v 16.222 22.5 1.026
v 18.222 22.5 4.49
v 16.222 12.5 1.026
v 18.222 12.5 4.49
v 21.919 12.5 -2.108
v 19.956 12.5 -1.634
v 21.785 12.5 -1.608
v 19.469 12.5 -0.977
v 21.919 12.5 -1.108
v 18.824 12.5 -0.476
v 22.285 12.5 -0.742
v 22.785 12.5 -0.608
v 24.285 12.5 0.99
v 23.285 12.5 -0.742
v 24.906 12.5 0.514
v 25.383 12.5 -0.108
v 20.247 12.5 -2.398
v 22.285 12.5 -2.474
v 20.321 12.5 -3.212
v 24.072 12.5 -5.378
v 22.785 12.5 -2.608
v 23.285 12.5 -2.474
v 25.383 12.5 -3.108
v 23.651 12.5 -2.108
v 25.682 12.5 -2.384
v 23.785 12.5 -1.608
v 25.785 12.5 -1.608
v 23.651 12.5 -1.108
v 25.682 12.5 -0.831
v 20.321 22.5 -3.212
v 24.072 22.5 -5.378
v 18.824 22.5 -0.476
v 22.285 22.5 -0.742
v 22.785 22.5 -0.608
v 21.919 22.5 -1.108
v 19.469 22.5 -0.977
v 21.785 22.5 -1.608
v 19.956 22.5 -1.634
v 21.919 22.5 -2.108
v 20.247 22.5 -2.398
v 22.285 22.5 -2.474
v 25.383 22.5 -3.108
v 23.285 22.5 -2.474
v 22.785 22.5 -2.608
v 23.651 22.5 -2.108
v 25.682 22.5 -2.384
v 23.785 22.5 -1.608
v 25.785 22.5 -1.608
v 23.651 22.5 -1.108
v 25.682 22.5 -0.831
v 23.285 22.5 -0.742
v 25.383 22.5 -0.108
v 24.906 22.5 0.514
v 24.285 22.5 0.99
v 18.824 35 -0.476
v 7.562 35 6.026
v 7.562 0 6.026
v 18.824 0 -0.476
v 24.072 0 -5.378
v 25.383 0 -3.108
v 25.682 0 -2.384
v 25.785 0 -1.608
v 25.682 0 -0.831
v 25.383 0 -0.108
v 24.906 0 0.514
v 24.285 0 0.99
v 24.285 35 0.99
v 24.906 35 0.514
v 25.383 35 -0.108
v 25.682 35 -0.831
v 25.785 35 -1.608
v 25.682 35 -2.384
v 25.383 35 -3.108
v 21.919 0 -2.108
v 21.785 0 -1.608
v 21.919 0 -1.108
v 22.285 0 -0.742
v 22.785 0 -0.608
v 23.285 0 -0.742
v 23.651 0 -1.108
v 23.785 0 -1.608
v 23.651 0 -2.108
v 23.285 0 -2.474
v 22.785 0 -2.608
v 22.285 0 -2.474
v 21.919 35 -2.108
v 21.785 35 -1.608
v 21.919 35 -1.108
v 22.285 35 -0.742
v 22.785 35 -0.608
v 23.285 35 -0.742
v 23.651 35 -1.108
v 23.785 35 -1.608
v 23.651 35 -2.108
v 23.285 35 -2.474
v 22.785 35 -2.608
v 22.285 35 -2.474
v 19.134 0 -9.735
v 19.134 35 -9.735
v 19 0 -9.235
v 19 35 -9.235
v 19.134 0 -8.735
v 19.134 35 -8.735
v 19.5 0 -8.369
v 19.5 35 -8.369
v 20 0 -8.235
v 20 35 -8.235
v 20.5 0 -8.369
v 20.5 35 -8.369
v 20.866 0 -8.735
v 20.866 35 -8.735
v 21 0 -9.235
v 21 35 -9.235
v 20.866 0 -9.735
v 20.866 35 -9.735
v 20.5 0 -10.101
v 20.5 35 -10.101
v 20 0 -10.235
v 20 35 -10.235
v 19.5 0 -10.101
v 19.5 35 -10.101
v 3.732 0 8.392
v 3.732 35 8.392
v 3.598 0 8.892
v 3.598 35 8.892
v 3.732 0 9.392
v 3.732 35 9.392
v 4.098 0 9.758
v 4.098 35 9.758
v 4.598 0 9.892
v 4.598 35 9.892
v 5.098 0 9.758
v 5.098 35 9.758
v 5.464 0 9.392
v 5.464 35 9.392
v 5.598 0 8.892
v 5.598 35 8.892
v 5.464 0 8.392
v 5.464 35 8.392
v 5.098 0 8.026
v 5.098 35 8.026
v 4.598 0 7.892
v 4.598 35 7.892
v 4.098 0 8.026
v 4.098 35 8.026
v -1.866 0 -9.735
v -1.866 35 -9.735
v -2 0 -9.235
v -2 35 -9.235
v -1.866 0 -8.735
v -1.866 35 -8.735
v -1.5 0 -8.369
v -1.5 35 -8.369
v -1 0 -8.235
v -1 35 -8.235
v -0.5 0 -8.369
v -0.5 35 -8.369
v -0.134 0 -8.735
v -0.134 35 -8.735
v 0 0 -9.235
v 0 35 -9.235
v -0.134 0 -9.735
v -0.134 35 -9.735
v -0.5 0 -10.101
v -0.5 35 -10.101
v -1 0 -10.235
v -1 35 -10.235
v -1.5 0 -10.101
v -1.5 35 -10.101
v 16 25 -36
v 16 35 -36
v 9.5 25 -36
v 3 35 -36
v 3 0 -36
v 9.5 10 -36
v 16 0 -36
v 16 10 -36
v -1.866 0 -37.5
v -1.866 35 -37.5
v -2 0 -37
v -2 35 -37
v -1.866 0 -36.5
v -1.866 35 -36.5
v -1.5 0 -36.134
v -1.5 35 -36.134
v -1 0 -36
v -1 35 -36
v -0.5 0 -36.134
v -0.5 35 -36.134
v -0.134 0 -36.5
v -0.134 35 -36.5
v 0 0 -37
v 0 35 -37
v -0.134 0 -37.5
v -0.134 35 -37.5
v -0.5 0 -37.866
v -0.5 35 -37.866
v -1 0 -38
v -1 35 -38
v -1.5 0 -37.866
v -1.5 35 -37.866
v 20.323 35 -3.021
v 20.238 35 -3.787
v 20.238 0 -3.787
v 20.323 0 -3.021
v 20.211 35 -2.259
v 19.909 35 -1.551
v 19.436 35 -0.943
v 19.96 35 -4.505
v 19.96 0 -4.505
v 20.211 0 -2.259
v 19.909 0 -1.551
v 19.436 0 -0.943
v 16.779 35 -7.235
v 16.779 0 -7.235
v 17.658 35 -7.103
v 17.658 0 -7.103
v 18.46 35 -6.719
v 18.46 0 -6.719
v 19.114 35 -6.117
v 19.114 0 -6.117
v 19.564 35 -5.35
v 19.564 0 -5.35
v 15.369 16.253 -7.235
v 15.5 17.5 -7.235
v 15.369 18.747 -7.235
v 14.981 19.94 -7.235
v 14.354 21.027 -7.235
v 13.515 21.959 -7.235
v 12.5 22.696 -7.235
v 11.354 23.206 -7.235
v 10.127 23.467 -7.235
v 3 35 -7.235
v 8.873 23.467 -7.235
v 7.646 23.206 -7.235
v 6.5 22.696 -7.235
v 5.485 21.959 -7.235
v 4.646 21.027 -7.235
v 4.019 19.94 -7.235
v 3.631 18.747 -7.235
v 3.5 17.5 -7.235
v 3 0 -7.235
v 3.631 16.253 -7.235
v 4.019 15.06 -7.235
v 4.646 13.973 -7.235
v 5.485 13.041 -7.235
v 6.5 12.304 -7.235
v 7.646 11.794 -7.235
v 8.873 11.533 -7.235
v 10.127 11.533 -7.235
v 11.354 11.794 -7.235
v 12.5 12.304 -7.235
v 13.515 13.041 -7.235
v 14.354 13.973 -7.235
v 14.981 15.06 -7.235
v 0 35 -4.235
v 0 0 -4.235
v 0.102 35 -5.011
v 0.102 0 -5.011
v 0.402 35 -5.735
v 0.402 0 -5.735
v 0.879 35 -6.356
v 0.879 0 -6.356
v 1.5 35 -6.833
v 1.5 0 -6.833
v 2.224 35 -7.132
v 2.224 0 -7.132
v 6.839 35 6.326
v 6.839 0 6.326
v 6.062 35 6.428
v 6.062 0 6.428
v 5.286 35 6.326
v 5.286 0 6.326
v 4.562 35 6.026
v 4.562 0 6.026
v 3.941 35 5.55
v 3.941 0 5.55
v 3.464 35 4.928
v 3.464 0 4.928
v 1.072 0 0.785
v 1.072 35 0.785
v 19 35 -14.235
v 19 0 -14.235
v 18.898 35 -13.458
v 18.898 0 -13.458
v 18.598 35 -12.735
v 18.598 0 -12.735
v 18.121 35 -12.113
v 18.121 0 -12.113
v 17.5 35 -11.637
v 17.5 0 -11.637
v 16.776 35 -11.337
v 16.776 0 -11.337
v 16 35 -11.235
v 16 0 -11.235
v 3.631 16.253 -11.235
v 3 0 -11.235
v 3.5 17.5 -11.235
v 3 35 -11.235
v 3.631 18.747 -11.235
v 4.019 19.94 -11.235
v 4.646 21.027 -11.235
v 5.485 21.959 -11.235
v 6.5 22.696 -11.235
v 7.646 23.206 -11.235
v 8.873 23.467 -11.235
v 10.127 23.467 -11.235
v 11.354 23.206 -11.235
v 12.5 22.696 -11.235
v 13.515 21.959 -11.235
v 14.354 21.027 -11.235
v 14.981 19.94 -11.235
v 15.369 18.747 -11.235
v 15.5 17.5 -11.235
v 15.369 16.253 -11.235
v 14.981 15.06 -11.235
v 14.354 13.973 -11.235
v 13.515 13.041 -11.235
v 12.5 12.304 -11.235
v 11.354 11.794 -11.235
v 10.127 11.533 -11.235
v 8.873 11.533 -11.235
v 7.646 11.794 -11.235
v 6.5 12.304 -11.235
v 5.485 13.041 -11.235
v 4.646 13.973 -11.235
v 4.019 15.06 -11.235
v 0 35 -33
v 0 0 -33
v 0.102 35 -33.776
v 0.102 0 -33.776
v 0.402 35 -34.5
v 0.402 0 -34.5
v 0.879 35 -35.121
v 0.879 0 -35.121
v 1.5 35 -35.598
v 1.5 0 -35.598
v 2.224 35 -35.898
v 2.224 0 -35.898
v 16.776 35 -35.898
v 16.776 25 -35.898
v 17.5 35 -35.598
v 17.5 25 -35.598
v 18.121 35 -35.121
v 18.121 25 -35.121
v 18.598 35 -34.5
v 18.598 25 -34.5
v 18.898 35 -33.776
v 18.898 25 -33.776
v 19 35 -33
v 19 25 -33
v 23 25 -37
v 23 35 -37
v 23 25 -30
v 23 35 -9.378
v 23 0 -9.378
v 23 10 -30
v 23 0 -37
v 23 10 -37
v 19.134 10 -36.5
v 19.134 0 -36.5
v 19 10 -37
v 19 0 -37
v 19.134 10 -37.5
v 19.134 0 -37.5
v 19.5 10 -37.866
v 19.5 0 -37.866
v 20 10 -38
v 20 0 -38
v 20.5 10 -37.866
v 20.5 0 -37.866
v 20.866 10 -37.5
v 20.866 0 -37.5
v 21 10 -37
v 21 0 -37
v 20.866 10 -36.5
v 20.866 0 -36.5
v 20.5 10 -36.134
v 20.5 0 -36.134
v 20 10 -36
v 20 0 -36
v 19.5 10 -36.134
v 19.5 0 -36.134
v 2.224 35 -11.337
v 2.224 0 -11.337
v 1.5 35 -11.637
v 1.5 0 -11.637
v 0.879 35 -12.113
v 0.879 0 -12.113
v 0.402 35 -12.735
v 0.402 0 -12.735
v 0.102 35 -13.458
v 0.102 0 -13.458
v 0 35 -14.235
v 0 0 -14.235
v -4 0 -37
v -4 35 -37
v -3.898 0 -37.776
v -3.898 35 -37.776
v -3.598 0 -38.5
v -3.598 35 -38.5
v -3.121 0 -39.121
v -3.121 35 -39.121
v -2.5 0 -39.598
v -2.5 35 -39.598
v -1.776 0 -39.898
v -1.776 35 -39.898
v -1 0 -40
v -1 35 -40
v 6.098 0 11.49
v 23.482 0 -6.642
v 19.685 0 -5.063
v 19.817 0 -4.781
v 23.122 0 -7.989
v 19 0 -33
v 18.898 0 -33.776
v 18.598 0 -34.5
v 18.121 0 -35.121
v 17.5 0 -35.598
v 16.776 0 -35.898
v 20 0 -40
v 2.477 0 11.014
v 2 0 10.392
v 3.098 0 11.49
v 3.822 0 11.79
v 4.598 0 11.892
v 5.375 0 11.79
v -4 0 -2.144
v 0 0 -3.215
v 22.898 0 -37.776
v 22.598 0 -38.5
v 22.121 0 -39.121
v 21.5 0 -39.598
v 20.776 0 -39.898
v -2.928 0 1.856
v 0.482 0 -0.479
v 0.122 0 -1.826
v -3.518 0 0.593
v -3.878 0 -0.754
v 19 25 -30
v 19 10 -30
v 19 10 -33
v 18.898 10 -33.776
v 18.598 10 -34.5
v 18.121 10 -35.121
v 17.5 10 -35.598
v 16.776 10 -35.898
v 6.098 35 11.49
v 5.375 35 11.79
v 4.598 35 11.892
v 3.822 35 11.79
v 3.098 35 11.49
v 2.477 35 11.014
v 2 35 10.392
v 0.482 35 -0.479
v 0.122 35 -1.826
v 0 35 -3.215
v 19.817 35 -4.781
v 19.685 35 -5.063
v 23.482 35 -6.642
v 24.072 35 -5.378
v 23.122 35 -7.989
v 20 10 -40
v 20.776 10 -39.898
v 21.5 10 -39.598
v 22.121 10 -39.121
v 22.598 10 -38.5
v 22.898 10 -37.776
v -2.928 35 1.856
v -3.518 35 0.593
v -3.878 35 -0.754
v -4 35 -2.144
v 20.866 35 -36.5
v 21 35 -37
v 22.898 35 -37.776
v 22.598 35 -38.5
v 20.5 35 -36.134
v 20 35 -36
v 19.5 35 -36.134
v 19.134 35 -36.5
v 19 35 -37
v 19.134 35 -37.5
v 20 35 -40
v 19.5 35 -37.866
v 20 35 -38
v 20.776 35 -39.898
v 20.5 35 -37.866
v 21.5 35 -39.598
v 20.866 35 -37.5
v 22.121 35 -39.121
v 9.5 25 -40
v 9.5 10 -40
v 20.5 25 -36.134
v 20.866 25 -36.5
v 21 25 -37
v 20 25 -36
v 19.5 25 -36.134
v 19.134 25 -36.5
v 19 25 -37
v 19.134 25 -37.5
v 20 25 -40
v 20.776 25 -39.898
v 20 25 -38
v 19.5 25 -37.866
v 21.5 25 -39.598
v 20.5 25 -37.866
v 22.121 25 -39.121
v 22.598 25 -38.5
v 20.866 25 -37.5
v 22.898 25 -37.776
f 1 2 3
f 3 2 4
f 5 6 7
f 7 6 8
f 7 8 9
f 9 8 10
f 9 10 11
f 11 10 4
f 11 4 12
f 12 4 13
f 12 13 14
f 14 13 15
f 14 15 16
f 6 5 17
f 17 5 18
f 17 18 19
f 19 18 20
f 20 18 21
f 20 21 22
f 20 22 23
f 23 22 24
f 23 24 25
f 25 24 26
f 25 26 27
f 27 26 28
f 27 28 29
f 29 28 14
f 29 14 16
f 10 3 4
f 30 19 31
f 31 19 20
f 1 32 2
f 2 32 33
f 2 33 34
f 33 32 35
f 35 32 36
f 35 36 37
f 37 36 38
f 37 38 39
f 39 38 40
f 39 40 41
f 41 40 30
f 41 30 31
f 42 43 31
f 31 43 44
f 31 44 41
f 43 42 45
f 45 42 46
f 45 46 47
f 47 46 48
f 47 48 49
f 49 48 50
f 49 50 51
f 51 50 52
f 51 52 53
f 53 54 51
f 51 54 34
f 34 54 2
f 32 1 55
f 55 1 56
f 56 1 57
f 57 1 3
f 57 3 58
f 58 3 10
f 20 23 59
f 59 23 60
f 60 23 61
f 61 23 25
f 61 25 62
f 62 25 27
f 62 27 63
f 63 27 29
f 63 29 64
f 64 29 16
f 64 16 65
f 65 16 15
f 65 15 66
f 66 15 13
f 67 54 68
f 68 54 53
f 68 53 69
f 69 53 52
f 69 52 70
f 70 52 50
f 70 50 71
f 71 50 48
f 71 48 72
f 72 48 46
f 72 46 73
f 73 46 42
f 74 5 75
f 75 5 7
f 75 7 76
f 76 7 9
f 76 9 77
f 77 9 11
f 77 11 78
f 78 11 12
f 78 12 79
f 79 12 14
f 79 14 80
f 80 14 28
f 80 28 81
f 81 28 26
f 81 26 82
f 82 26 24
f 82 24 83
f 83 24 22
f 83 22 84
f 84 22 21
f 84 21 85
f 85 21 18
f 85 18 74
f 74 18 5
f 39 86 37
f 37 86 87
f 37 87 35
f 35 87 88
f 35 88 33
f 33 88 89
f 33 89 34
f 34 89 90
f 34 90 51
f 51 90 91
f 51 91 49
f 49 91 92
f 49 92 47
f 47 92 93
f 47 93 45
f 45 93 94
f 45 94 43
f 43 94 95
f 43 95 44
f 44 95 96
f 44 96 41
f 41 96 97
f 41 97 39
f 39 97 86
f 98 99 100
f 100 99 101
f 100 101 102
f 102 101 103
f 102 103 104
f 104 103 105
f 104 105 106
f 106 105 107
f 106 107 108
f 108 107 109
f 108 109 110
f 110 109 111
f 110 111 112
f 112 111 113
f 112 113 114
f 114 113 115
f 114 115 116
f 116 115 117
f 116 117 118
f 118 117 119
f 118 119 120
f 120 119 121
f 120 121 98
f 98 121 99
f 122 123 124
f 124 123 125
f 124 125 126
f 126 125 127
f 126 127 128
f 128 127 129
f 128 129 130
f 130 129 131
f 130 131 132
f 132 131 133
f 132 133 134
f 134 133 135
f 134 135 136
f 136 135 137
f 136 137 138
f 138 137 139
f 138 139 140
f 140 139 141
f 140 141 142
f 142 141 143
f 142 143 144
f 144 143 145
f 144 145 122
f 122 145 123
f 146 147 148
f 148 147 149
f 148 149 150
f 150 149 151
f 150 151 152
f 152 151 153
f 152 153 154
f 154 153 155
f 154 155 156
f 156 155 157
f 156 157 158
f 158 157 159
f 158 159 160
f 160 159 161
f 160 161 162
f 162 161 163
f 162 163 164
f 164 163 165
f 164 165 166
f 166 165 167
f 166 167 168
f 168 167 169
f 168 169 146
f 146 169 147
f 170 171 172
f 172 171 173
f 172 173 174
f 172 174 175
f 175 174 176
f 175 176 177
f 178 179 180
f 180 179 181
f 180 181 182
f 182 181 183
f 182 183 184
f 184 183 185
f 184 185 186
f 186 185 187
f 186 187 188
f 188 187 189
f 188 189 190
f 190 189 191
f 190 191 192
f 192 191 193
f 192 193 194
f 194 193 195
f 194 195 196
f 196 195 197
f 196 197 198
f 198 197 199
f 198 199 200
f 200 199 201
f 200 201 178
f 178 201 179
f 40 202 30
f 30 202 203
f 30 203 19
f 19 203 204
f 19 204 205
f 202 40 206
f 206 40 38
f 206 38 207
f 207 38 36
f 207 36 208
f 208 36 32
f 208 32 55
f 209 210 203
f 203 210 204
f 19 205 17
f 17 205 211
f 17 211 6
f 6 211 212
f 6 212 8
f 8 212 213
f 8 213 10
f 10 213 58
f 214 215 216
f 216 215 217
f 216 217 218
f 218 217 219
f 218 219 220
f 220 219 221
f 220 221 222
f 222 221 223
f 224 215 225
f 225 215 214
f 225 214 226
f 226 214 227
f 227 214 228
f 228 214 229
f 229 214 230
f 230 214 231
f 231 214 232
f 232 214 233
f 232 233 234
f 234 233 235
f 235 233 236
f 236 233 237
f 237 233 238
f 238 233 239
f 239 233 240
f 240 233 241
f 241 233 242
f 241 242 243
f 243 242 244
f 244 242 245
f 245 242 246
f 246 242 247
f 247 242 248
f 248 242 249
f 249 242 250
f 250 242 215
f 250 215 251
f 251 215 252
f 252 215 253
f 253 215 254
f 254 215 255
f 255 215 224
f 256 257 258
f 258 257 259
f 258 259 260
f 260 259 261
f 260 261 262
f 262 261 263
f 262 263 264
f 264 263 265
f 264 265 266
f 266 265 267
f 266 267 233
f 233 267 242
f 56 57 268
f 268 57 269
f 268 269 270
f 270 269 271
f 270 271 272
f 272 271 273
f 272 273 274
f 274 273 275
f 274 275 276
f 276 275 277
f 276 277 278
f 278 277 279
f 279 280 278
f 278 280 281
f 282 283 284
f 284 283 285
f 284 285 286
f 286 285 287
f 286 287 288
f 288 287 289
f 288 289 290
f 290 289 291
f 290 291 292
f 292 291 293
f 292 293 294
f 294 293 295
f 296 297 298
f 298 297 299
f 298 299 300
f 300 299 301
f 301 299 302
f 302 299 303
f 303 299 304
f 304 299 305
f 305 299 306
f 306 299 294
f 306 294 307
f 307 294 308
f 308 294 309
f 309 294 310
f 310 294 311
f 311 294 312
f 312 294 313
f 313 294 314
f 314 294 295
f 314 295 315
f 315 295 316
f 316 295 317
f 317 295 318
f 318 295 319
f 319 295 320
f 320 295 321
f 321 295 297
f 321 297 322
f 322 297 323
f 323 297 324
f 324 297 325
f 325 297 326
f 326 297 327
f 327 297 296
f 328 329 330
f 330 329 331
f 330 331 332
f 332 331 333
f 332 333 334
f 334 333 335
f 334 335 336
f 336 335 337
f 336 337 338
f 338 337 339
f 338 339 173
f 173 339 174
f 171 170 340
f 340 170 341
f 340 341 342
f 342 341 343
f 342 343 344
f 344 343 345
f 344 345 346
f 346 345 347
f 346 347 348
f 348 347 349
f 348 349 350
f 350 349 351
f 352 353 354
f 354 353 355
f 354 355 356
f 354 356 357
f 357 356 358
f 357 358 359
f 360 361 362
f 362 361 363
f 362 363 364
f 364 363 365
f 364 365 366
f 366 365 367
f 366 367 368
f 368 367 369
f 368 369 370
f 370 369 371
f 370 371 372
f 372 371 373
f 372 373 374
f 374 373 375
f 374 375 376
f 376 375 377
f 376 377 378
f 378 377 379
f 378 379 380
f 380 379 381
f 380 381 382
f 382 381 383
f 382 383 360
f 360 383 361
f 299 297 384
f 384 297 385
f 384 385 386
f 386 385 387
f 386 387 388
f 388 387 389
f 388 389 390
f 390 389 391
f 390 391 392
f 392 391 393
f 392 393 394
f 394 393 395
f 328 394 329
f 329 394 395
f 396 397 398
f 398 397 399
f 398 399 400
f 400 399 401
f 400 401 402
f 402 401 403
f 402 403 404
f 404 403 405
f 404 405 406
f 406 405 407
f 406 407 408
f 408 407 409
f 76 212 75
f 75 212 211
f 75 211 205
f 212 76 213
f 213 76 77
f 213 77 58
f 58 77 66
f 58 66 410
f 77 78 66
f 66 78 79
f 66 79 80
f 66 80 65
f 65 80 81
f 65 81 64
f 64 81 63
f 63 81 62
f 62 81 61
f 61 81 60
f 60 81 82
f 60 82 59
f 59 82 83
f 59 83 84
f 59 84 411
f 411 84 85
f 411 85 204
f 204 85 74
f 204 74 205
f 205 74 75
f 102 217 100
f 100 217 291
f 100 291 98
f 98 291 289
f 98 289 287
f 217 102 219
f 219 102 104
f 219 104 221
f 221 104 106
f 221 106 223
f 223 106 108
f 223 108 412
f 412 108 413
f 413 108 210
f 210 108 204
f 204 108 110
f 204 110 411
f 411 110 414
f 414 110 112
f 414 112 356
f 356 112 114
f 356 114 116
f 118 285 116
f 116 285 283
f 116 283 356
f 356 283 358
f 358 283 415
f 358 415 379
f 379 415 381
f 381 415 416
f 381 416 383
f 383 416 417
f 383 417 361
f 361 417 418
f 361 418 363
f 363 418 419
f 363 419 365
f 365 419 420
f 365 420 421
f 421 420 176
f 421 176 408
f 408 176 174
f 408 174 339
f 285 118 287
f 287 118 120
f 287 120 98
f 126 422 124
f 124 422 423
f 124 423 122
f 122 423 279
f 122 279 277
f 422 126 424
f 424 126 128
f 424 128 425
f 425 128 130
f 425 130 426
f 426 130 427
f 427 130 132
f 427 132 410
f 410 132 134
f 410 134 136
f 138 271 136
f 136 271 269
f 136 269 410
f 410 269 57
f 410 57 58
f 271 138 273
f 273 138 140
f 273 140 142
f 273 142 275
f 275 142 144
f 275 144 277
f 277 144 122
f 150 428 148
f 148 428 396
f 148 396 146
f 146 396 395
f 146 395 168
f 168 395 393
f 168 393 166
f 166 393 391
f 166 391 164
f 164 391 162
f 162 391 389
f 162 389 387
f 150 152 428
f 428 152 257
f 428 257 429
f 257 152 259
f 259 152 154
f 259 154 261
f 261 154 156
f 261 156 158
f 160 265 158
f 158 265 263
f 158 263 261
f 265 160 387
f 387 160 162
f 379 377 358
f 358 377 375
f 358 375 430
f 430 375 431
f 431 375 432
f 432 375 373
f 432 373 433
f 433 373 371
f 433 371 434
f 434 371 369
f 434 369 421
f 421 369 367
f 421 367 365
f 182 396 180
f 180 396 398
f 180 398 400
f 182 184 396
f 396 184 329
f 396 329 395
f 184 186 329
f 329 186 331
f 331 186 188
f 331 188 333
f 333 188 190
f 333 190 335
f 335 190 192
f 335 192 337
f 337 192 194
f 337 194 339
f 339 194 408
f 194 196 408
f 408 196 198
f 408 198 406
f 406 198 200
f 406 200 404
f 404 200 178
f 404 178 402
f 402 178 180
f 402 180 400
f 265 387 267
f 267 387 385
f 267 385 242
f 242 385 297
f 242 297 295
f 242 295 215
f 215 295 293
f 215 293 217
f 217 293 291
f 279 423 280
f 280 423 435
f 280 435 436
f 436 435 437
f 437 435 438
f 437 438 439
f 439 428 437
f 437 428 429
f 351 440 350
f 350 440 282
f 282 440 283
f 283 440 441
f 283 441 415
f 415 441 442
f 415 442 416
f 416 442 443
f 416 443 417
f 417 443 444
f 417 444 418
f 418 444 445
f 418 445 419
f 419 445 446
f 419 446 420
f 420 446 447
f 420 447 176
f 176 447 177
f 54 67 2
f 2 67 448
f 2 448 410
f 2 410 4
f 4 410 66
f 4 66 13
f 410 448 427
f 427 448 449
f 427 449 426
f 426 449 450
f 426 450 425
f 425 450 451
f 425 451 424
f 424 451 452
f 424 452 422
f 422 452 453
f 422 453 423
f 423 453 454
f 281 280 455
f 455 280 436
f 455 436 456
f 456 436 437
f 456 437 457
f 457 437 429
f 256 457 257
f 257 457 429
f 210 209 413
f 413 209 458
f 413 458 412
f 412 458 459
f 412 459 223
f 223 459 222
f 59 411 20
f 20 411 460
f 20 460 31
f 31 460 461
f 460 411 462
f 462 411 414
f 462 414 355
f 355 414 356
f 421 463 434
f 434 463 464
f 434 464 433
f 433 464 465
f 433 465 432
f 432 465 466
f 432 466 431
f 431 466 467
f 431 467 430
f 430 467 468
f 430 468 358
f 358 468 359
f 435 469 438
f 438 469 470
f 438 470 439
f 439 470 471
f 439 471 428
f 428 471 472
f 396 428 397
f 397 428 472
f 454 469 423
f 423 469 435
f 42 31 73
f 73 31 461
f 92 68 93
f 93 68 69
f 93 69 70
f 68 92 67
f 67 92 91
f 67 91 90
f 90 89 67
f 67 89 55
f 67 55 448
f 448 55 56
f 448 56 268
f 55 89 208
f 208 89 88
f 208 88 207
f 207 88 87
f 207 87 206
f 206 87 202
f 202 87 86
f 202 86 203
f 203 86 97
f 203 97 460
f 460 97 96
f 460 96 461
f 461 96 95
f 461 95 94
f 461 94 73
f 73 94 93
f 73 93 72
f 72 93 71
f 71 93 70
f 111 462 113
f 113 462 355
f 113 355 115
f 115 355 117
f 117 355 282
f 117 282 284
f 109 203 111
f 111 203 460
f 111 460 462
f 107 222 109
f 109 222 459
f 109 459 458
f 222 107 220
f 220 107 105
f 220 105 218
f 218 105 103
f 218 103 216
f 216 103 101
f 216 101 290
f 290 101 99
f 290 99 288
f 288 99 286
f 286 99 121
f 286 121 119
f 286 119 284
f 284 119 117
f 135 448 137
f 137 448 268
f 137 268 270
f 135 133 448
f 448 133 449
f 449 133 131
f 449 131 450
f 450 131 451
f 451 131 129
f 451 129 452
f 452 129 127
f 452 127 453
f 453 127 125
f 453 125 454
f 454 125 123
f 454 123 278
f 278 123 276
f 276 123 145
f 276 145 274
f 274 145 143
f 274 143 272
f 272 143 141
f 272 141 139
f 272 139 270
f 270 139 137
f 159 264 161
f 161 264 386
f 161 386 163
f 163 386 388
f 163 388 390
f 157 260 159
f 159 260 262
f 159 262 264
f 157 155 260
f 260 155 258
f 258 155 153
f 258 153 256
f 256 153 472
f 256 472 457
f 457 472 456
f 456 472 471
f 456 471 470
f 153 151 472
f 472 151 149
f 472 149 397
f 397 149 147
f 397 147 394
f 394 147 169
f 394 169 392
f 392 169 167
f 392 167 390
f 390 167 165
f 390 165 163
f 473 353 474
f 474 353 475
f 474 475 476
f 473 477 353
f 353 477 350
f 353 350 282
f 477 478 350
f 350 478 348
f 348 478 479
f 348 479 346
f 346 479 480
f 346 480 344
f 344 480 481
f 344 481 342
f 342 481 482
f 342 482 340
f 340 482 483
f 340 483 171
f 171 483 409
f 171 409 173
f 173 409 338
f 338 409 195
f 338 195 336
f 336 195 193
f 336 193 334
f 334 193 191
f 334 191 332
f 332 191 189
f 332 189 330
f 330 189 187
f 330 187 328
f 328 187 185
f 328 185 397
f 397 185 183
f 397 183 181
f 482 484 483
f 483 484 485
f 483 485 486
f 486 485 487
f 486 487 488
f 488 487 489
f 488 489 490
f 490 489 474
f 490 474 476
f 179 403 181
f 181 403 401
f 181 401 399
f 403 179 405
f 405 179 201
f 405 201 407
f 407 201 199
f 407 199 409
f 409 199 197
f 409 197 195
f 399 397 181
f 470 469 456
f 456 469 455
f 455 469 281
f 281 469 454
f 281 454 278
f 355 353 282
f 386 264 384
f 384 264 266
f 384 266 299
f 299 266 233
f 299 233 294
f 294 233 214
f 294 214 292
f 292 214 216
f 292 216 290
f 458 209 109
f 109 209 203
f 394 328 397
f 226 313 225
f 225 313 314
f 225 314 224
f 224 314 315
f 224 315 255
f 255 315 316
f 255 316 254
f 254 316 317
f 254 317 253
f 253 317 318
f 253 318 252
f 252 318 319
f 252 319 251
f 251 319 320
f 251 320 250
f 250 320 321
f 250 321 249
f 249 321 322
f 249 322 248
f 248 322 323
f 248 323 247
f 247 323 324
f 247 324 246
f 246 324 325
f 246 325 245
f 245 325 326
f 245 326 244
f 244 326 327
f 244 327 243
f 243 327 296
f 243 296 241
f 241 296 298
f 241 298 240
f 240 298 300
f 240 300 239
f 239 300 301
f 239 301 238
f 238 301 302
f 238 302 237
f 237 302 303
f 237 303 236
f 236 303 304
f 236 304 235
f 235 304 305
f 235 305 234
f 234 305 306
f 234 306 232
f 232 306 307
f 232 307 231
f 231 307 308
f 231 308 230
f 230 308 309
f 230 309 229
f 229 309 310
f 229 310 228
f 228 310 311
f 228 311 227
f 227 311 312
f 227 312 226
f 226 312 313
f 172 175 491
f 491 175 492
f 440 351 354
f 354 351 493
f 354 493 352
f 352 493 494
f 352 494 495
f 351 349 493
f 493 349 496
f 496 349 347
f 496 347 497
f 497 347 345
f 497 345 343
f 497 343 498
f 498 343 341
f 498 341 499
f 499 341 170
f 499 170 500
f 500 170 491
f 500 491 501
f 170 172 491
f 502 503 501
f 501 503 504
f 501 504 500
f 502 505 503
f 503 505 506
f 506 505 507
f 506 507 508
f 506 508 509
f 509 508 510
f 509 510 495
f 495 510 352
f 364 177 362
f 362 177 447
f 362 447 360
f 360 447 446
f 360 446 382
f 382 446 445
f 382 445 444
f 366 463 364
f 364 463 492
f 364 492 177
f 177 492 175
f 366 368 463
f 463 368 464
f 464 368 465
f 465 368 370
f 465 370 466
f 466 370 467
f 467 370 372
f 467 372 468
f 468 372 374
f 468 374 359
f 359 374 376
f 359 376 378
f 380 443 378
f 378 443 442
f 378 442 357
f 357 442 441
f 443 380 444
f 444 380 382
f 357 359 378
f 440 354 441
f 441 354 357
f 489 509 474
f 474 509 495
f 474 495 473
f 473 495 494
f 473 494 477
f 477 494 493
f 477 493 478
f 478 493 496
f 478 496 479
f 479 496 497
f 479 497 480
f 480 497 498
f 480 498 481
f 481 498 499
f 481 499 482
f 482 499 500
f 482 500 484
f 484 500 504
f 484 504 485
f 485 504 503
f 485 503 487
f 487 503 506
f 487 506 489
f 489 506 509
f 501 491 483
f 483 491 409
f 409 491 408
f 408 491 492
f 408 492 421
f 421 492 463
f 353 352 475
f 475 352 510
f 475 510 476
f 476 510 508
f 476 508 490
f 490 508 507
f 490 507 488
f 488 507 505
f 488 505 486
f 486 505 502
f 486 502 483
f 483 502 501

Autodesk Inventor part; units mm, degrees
ref_plane "YZ Plane" through (0, 0, 0) normal (1, 0, 0) x (0, 1, 0)
ref_plane "XZ Plane" through (0, 0, 0) normal (0, 1, 0) x (-1, 0, 0)
ref_plane "XY Plane" through (0, 0, 0) normal (0, 0, 1) x (1, 0, 0)
sketch "スケッチ1" plane through (0, 0, 0) normal (0, 1, 0) x (-1, 0, 0)
  line L0 (0, 0) -> (4, 0)
  line L1 (4, 0) -> (4, -40)
  line L2 (4, -40) -> (0, -40)
  line L3 (0, -40) -> (0, 0)
  line L4 (-3.5, 12.9904) -> (-6.9641, 10.9904)
  line L5 (-6.9641, 10.9904) -> (0.5359, -2)
  line L6 (0.5359, -2) -> (4, 0)
  line L7 (4, 0) -> (-3.5, 12.9904)
  line L8 (4, -40) -> (-23, -40)
  line L9 (-23, -40) -> (-23, -36)
  line L10 (-23, -36) -> (4, -36)
  line L11 (4, -36) -> (4, -40)
  line L12 (-3.5, 12.9904) -> (-1.5, 9.5263)
  line L13 (-1.5, 9.5263) -> (-24.8827, -3.9737)
  line L14 (-24.8827, -3.9737) -> (-26.8827, -0.5096)
  line L15 (-26.8827, -0.5096) -> (-3.5, 12.9904)
  line L16 (-23, -40) -> (-19, -40)
  line L17 (-19, -40) -> (-19, -7.2346)
  line L18 (-19, -7.2346) -> (-23, -7.2346)
  line L19 (-23, -7.2346) -> (-23, -40)
  line L20 (-26.8827, -0.5096) -> (-23.4186, 1.4904)
  line L21 (-23.4186, 1.4904) -> (-19.5359, -5.2346)
  line L22 (-19.5359, -5.2346) -> (-23, -7.2346)
  line L23 (-23, -7.2346) -> (-26.8827, -0.5096)
  line L24 (-23, -7.2346) -> (4, -7.2346)
  line L25 (4, -7.2346) -> (4, -11.2346)
  line L26 (4, -11.2346) -> (-23, -11.2346)
  line L27 (-23, -11.2346) -> (-23, -7.2346)
  line L28 (-19.5359, -5.2346) -> (-19, -7.2346)
  point P0 (0, -1.0718)
  point P1 (-21.4186, -1.9737)
  point P2 (-4.9641, 7.5263)
  point P3 (-24.8827, -3.9737)
  point P4 (0, -36)
  point P5 (-19, -36)
  point P6 (-19, -11.2346)
  point P7 (0, -11.2346)
  point P8 (0, -7.2346)
  dimension "d2" = 4
  dimension "d3" = 30
  dimension "d5" = 40
  dimension "d6" = 15
  dimension "d7" = 27
  dimension "d8" = 27
extrude "押し出し1" add sketch "スケッチ1" along normal blind 35 contours L3 L5 L13 L7 L0 | L0 L6 L5 L3 | L1 L24 L3 L5 L6 | L1 L26 L3 L24 | L13 L5 L4 L7 | L3 L26 L17 L24 | L13 L21 L15 L5 | L1 L10 L3 L26 | L17 L26 L19 L18 | L18 L22 L28 | L21 L22 L23 L13 | L13 L14 L15 L21 | L1 L2 L3 L10 | L3 L8 L17 L10 | L17 L10 L19 L26 | L17 L8 L9 L10
fillet "フィレット1" radius 8 4 edges at (-4, 17.5, 0) (23, 17.5, -7.2346) (19.5359, 17.5, -5.2346) (0, 17.5, -1.0718)
fillet "フィレット2" radius 3 12 edges at (3.5, 17.5, 12.9904) (26.8827, 17.5, -0.5096) (23, 17.5, -40) (-4, 17.5, -40) (0, 17.5, -11.2346) (19, 17.5, -36) (0, 17.5, -36) (19, 17.5, -11.2346) (4.9641, 17.5, 7.5263) (0, 17.5, -7.2346) (19, 17.5, -7.2346) (21.4186, 17.5, -1.9737)
sketch "スケッチ2" plane through (0, 35, 0) normal (0, 1, 0) x (1, 0, 0)
  circle A0 centre (4.5981, -8.8923) radius 1
  arc A1 (2, -10.3923) -> (6.0981, -11.4904) centre (4.5981, -8.8923) ccw projected
  circle A2 centre (22.7846, 1.6077) radius 1
  circle A3 centre (20, 37) radius 1
  circle A4 centre (20, 9.2346) radius 1
  circle A5 centre (-1, 9.2346) radius 1
  circle A6 centre (-1, 37) radius 1
  arc A7 (24.2846, -0.9904) -> (25.3827, 3.1077) centre (22.7846, 1.6077) ccw projected
  arc A8 (-1, 40) -> (-4, 37) centre (-1, 37) ccw projected
  arc A9 (23, 37) -> (20, 40) centre (20, 37) ccw projected
  line L0 (3, 7.2346) -> (16.7785, 7.2346) projected
  line L1 (16, 11.2346) -> (3, 11.2346) projected
  point P0 (0, 0)
  dimension "d10" = 2
  dimension "d11" = 2
  dimension "d12" = 2
  dimension "d13" = 2
  dimension "d14" = 2
  dimension "d15" = 2
  dimension "d16" = 2
  dimension "d17" = 2
extrude "押し出し2" cut sketch "スケッチ2" against normal through all
sketch "スケッチ3" plane through (24.0718, 0, -5.3782) normal (0.866, 0, -0.5) x (-0.5, 0, -0.866)
  line L0 (-2.6218, 0) -> (-2.6218, 35) projected
  line L1 (-2.6218, 0) -> (0, 0) projected
  line L2 (0, 35) -> (0, 0) projected
  line L3 (-2.6218, 35) -> (0, 35) projected
  line L4 (0, 12.5) -> (-14.5476, 12.5)
  line L5 (-14.5476, 12.5) -> (-14.5476, 22.5)
  line L6 (-14.5476, 22.5) -> (0, 22.5)
  line L7 (0, 22.5) -> (0, 12.5)
  line L8 (0, 35) -> (0, 0) projected
  point P0 (7.3782, 0)
  point P1 (0, 17.5)
  point P2 (0, 17.5)
  dimension "d20" = 10
extrude "押し出し3" cut sketch "スケッチ3" against normal blind 10 contours L4 L5 L6 L0 | L0 L6 L2 L4
sketch "スケッチ5" plane through (16, 0, -11.2346) normal (0, 0, -1) x (-1, 0, 0)
  line L0 (0, 0) -> (0, 35) projected
  line L1 (0, 0) -> (13, 0) projected
  line L2 (13, 35) -> (13, 0) projected
  line L3 (0, 35) -> (13, 35) projected
  line L4 (0, 35) -> (13, 35) projected
  line L5 (13, 35) -> (0, 0)
  line L6 (13, 0) -> (0, 35)
  circle A0 centre (6.5, 17.5) radius 6
  point P0 (16, 0)
  dimension "d26" = 12
extrude "押し出し5" cut sketch "スケッチ5" against normal up to surface (4 mm away) contours A0 L6 L5 | L5 L6 A0 | A0 L5 L6 | L6 L5 A0
sketch "スケッチ6" plane through (20, 0, -40) normal (0, 0, -1) x (-1, 0, 0)
  line L0 (21, 35) -> (21, 0) projected
  line L1 (0, 35) -> (21, 35) projected
  line L2 (0, 0) -> (0, 35) projected
  line L3 (0, 0) -> (21, 0) projected
  line L4 (10.5, 25) -> (-9.5, 25)
  line L5 (-9.5, 25) -> (-9.5, 10)
  line L6 (-9.5, 10) -> (10.5, 10)
  line L7 (10.5, 10) -> (10.5, 25)
  line L8 (0, 0) -> (21, 0) projected
  line L9 (21, 35) -> (21, 0) projected
  point P0 (20, 0)
  point P1 (10.5, 0)
  point P2 (10.5, 17.5)
  point P3 (21, 17.5)
  dimension "d29" = 15
extrude "押し出し6" cut sketch "スケッチ6" against normal blind 10 contours L4 L7 L6 L2 | L2 L6 L5 L4
equation "\"d16\" = d17"
properties part number "leg_upper_middle"
